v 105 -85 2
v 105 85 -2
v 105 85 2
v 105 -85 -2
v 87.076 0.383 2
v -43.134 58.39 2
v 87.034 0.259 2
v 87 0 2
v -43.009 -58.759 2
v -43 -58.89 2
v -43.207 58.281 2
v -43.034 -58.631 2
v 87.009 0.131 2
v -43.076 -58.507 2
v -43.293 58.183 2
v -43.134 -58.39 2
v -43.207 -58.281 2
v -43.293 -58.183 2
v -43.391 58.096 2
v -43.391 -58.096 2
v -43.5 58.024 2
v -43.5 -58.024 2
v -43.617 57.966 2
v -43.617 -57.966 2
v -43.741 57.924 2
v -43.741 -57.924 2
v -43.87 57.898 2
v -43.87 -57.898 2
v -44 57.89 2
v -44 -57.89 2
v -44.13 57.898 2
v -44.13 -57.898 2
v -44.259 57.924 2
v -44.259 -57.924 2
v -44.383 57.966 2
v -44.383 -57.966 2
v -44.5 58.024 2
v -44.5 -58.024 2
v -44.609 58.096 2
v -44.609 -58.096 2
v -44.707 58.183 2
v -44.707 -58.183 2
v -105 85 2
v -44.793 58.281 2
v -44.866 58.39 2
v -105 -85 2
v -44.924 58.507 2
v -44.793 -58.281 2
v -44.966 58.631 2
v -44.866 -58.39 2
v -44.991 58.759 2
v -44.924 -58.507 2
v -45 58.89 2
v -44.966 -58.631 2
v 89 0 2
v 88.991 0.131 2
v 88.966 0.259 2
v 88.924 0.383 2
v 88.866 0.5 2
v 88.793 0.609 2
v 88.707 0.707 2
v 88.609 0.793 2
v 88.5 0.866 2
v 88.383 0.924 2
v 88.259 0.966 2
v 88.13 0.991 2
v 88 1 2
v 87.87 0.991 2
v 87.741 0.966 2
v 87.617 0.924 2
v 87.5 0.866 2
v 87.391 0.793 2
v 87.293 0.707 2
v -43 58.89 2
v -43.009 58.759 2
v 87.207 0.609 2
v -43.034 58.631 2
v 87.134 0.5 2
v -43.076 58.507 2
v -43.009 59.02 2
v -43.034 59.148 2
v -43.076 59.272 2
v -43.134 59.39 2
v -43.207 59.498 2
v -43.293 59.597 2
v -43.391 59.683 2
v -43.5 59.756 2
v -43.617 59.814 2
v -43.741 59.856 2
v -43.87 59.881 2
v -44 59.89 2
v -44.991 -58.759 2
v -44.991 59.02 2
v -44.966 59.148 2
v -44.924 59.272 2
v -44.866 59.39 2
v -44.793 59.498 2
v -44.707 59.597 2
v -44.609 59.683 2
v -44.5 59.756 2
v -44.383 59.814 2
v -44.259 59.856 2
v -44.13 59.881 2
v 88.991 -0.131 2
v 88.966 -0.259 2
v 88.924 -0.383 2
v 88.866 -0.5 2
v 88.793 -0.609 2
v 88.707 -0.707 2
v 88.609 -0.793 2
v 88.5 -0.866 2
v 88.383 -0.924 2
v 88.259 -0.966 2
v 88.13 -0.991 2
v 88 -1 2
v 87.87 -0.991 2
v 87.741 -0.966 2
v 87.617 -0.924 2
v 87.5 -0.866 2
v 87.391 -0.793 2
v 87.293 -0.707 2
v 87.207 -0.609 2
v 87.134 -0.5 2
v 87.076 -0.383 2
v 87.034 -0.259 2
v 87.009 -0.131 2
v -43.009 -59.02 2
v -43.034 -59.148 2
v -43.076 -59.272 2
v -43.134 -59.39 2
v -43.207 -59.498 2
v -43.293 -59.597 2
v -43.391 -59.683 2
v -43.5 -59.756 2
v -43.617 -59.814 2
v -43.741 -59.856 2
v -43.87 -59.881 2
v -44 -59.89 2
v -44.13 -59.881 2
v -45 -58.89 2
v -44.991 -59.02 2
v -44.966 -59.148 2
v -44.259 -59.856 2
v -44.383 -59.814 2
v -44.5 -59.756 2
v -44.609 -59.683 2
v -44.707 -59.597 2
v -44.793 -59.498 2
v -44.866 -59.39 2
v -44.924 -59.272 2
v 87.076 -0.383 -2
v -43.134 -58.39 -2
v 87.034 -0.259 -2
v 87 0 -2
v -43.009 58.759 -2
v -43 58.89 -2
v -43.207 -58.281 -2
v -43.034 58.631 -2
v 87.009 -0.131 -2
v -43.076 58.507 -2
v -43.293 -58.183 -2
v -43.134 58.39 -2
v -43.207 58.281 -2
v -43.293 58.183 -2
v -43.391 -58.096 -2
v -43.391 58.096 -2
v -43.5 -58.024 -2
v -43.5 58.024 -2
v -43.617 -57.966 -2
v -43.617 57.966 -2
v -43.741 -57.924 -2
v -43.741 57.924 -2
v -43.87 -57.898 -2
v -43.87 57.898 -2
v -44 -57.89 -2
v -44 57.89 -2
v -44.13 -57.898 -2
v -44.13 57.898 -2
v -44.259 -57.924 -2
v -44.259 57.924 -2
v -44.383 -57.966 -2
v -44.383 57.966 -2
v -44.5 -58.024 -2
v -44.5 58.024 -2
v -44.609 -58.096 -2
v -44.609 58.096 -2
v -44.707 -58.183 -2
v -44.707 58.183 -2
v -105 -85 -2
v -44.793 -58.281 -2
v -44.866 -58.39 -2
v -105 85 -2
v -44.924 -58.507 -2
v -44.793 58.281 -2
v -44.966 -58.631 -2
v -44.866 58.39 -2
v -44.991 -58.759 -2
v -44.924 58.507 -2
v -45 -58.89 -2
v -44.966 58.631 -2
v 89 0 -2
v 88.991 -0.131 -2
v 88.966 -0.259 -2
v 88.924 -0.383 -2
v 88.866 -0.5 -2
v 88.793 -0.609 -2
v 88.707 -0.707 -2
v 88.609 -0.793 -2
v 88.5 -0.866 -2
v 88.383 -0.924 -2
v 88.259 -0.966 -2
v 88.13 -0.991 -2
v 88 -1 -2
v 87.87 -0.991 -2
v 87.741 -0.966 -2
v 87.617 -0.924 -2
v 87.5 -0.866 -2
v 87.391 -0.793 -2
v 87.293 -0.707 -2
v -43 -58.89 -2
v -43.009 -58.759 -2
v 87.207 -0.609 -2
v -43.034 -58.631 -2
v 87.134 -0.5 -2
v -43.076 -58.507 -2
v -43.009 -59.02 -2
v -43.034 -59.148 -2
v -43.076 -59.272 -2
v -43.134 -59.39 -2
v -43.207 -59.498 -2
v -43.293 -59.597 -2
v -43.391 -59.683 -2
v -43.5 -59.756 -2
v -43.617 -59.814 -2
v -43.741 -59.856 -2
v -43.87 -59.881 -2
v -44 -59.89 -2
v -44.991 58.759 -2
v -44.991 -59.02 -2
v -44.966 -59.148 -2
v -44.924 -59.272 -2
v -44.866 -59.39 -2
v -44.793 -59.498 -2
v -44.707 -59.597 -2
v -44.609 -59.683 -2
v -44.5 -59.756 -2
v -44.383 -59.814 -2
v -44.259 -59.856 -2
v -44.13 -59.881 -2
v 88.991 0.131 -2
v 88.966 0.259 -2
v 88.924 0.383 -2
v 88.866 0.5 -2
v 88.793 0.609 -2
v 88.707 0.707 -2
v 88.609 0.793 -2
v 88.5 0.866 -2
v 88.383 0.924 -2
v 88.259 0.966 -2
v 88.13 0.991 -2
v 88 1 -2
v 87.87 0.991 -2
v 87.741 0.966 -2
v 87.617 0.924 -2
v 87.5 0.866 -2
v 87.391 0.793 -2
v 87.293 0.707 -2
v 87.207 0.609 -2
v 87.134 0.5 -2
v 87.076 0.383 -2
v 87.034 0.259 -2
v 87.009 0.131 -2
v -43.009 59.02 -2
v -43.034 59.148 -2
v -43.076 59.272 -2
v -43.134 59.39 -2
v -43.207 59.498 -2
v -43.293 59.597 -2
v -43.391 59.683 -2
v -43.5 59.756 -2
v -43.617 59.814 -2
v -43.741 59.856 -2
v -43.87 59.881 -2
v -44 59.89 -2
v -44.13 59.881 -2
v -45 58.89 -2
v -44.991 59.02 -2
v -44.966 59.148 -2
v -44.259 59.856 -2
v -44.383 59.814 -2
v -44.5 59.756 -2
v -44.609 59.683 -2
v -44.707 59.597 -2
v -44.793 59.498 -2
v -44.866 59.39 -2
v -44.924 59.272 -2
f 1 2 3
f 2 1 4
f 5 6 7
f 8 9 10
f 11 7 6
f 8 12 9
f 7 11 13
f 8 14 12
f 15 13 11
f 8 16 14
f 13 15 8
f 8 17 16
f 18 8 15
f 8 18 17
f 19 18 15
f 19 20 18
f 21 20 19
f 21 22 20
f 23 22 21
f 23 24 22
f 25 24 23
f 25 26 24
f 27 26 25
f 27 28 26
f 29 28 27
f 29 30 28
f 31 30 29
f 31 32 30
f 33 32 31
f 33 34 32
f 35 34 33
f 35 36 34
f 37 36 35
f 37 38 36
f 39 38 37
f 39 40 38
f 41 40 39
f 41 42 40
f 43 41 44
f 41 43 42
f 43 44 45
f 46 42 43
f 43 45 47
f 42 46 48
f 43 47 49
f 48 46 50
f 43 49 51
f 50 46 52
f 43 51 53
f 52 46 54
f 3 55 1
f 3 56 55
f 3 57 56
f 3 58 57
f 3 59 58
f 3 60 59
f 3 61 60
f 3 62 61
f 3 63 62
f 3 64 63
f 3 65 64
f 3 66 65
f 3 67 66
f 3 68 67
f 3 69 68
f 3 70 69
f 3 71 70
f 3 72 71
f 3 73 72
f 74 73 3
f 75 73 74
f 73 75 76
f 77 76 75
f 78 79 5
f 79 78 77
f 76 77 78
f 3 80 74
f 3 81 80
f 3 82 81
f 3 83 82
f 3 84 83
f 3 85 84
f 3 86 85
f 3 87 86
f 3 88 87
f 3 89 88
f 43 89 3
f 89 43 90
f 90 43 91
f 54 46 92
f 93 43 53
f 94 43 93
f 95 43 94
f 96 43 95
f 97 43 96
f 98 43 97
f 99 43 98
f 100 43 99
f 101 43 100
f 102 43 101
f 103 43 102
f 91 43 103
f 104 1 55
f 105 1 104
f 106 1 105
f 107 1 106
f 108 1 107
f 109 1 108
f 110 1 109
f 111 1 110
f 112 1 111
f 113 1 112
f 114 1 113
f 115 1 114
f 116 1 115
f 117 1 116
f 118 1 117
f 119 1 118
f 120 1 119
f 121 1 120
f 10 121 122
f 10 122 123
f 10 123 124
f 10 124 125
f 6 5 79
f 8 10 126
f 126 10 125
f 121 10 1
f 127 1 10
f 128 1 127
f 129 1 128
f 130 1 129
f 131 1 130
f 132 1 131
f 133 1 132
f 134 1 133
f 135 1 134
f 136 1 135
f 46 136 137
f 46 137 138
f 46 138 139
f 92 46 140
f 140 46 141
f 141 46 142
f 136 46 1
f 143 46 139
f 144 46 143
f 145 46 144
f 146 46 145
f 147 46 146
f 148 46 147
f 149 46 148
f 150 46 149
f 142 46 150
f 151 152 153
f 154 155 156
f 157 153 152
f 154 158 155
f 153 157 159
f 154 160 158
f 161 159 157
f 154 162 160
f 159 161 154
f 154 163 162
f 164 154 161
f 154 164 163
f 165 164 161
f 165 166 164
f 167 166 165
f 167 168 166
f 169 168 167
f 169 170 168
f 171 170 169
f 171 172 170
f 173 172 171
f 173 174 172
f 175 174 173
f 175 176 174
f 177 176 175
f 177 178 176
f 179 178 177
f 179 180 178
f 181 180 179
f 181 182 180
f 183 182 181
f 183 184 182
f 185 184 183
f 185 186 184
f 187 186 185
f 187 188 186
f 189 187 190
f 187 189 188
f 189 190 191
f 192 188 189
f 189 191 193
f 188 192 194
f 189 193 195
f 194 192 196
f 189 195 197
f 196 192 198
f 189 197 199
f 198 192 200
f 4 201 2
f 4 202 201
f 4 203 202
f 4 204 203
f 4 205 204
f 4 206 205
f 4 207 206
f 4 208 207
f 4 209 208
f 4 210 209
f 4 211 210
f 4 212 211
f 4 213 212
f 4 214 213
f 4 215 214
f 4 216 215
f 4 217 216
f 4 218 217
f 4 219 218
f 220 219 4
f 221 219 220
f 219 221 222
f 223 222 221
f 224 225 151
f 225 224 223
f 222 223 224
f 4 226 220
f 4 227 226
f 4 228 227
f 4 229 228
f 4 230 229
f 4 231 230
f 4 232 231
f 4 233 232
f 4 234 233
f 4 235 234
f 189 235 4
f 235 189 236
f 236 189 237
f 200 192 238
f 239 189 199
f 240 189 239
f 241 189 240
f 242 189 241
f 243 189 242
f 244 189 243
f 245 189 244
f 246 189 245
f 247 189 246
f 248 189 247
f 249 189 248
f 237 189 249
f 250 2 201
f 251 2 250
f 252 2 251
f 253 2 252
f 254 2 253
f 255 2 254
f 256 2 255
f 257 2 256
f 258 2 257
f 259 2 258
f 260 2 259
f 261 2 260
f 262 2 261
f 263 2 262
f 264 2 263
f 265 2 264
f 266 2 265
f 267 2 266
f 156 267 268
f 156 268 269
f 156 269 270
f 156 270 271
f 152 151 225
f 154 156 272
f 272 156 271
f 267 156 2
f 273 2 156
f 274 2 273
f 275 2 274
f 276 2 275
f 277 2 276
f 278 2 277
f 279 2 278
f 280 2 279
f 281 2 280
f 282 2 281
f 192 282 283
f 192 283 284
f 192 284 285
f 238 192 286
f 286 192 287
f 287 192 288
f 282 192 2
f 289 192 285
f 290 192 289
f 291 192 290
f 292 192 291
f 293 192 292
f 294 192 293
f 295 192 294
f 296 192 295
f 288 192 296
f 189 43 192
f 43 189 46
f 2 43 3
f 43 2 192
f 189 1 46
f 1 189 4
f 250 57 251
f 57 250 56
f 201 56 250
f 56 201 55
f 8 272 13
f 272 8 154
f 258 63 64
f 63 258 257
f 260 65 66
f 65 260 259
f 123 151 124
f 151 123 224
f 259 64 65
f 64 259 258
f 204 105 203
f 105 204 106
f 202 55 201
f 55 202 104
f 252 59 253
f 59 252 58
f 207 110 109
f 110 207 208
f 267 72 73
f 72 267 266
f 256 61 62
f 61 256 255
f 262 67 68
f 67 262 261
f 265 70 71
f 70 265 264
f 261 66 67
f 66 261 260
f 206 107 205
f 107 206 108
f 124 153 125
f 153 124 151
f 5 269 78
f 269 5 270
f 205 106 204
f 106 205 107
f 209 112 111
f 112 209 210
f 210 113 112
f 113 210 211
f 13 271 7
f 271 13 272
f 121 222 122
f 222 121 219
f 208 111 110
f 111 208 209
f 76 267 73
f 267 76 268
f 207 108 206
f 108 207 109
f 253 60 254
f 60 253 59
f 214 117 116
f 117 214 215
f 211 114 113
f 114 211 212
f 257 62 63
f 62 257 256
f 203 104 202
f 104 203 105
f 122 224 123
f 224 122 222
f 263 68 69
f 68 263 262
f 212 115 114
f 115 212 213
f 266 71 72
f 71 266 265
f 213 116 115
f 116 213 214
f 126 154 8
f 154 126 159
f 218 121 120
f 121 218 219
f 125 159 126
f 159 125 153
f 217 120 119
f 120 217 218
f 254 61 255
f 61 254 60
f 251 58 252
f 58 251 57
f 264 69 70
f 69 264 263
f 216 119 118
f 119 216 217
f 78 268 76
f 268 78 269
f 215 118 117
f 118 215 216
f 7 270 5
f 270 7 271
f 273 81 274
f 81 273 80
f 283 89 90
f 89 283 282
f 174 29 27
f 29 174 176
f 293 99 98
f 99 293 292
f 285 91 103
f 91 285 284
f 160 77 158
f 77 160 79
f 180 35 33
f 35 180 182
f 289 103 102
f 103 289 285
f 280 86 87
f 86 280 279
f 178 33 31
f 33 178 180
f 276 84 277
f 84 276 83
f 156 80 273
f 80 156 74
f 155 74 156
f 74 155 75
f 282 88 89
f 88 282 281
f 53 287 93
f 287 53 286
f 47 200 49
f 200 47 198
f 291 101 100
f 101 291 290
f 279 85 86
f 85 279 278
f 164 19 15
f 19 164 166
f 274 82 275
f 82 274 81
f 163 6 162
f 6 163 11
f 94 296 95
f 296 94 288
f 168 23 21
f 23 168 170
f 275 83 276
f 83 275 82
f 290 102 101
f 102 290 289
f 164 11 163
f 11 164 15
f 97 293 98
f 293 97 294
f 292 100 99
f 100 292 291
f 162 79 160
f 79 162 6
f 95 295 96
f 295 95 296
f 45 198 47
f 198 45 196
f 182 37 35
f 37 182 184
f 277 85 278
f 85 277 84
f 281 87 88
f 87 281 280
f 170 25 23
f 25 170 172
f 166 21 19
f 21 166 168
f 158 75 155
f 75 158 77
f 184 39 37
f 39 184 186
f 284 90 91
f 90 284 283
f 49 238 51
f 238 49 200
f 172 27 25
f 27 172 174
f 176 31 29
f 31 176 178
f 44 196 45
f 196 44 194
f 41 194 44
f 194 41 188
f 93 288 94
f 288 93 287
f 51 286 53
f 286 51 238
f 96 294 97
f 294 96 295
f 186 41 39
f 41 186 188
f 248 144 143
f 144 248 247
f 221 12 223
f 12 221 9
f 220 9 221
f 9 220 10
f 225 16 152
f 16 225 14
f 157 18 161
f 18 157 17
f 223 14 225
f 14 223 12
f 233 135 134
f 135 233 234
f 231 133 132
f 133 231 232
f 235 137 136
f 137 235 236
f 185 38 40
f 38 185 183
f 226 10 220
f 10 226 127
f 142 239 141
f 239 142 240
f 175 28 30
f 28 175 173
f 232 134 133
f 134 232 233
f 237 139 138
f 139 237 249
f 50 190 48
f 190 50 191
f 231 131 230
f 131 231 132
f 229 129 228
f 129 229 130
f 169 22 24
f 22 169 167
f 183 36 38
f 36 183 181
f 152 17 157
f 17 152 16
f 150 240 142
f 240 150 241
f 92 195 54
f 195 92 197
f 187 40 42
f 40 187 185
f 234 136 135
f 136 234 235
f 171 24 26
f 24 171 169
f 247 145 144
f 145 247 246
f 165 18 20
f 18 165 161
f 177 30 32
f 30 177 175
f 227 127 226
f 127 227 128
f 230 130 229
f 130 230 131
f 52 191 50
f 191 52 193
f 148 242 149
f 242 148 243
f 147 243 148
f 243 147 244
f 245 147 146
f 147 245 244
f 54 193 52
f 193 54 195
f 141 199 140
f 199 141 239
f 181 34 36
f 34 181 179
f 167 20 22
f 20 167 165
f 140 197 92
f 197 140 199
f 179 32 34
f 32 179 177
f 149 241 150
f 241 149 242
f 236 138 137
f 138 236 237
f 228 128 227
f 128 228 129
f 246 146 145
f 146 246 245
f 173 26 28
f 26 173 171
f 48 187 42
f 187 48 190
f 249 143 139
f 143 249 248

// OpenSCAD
// ========================================
// a 210 x 170 x 4 mm plate with three 2 mm holes
// NeuroCAD canonical IR; dimensions are millimetres
// ========================================
$fn = 48;

difference() {
  cube(size=[210, 170, 4], center=true);
  translate([88, 0, 0]) {
    cylinder(r=1, h=6, center=true);
  }
  translate([-44, 58.8897274573418, 0]) {
    cylinder(r=1, h=6, center=true);
  }
  translate([-44, -58.8897274573418, 0]) {
    cylinder(r=1, h=6, center=true);
  }
}
